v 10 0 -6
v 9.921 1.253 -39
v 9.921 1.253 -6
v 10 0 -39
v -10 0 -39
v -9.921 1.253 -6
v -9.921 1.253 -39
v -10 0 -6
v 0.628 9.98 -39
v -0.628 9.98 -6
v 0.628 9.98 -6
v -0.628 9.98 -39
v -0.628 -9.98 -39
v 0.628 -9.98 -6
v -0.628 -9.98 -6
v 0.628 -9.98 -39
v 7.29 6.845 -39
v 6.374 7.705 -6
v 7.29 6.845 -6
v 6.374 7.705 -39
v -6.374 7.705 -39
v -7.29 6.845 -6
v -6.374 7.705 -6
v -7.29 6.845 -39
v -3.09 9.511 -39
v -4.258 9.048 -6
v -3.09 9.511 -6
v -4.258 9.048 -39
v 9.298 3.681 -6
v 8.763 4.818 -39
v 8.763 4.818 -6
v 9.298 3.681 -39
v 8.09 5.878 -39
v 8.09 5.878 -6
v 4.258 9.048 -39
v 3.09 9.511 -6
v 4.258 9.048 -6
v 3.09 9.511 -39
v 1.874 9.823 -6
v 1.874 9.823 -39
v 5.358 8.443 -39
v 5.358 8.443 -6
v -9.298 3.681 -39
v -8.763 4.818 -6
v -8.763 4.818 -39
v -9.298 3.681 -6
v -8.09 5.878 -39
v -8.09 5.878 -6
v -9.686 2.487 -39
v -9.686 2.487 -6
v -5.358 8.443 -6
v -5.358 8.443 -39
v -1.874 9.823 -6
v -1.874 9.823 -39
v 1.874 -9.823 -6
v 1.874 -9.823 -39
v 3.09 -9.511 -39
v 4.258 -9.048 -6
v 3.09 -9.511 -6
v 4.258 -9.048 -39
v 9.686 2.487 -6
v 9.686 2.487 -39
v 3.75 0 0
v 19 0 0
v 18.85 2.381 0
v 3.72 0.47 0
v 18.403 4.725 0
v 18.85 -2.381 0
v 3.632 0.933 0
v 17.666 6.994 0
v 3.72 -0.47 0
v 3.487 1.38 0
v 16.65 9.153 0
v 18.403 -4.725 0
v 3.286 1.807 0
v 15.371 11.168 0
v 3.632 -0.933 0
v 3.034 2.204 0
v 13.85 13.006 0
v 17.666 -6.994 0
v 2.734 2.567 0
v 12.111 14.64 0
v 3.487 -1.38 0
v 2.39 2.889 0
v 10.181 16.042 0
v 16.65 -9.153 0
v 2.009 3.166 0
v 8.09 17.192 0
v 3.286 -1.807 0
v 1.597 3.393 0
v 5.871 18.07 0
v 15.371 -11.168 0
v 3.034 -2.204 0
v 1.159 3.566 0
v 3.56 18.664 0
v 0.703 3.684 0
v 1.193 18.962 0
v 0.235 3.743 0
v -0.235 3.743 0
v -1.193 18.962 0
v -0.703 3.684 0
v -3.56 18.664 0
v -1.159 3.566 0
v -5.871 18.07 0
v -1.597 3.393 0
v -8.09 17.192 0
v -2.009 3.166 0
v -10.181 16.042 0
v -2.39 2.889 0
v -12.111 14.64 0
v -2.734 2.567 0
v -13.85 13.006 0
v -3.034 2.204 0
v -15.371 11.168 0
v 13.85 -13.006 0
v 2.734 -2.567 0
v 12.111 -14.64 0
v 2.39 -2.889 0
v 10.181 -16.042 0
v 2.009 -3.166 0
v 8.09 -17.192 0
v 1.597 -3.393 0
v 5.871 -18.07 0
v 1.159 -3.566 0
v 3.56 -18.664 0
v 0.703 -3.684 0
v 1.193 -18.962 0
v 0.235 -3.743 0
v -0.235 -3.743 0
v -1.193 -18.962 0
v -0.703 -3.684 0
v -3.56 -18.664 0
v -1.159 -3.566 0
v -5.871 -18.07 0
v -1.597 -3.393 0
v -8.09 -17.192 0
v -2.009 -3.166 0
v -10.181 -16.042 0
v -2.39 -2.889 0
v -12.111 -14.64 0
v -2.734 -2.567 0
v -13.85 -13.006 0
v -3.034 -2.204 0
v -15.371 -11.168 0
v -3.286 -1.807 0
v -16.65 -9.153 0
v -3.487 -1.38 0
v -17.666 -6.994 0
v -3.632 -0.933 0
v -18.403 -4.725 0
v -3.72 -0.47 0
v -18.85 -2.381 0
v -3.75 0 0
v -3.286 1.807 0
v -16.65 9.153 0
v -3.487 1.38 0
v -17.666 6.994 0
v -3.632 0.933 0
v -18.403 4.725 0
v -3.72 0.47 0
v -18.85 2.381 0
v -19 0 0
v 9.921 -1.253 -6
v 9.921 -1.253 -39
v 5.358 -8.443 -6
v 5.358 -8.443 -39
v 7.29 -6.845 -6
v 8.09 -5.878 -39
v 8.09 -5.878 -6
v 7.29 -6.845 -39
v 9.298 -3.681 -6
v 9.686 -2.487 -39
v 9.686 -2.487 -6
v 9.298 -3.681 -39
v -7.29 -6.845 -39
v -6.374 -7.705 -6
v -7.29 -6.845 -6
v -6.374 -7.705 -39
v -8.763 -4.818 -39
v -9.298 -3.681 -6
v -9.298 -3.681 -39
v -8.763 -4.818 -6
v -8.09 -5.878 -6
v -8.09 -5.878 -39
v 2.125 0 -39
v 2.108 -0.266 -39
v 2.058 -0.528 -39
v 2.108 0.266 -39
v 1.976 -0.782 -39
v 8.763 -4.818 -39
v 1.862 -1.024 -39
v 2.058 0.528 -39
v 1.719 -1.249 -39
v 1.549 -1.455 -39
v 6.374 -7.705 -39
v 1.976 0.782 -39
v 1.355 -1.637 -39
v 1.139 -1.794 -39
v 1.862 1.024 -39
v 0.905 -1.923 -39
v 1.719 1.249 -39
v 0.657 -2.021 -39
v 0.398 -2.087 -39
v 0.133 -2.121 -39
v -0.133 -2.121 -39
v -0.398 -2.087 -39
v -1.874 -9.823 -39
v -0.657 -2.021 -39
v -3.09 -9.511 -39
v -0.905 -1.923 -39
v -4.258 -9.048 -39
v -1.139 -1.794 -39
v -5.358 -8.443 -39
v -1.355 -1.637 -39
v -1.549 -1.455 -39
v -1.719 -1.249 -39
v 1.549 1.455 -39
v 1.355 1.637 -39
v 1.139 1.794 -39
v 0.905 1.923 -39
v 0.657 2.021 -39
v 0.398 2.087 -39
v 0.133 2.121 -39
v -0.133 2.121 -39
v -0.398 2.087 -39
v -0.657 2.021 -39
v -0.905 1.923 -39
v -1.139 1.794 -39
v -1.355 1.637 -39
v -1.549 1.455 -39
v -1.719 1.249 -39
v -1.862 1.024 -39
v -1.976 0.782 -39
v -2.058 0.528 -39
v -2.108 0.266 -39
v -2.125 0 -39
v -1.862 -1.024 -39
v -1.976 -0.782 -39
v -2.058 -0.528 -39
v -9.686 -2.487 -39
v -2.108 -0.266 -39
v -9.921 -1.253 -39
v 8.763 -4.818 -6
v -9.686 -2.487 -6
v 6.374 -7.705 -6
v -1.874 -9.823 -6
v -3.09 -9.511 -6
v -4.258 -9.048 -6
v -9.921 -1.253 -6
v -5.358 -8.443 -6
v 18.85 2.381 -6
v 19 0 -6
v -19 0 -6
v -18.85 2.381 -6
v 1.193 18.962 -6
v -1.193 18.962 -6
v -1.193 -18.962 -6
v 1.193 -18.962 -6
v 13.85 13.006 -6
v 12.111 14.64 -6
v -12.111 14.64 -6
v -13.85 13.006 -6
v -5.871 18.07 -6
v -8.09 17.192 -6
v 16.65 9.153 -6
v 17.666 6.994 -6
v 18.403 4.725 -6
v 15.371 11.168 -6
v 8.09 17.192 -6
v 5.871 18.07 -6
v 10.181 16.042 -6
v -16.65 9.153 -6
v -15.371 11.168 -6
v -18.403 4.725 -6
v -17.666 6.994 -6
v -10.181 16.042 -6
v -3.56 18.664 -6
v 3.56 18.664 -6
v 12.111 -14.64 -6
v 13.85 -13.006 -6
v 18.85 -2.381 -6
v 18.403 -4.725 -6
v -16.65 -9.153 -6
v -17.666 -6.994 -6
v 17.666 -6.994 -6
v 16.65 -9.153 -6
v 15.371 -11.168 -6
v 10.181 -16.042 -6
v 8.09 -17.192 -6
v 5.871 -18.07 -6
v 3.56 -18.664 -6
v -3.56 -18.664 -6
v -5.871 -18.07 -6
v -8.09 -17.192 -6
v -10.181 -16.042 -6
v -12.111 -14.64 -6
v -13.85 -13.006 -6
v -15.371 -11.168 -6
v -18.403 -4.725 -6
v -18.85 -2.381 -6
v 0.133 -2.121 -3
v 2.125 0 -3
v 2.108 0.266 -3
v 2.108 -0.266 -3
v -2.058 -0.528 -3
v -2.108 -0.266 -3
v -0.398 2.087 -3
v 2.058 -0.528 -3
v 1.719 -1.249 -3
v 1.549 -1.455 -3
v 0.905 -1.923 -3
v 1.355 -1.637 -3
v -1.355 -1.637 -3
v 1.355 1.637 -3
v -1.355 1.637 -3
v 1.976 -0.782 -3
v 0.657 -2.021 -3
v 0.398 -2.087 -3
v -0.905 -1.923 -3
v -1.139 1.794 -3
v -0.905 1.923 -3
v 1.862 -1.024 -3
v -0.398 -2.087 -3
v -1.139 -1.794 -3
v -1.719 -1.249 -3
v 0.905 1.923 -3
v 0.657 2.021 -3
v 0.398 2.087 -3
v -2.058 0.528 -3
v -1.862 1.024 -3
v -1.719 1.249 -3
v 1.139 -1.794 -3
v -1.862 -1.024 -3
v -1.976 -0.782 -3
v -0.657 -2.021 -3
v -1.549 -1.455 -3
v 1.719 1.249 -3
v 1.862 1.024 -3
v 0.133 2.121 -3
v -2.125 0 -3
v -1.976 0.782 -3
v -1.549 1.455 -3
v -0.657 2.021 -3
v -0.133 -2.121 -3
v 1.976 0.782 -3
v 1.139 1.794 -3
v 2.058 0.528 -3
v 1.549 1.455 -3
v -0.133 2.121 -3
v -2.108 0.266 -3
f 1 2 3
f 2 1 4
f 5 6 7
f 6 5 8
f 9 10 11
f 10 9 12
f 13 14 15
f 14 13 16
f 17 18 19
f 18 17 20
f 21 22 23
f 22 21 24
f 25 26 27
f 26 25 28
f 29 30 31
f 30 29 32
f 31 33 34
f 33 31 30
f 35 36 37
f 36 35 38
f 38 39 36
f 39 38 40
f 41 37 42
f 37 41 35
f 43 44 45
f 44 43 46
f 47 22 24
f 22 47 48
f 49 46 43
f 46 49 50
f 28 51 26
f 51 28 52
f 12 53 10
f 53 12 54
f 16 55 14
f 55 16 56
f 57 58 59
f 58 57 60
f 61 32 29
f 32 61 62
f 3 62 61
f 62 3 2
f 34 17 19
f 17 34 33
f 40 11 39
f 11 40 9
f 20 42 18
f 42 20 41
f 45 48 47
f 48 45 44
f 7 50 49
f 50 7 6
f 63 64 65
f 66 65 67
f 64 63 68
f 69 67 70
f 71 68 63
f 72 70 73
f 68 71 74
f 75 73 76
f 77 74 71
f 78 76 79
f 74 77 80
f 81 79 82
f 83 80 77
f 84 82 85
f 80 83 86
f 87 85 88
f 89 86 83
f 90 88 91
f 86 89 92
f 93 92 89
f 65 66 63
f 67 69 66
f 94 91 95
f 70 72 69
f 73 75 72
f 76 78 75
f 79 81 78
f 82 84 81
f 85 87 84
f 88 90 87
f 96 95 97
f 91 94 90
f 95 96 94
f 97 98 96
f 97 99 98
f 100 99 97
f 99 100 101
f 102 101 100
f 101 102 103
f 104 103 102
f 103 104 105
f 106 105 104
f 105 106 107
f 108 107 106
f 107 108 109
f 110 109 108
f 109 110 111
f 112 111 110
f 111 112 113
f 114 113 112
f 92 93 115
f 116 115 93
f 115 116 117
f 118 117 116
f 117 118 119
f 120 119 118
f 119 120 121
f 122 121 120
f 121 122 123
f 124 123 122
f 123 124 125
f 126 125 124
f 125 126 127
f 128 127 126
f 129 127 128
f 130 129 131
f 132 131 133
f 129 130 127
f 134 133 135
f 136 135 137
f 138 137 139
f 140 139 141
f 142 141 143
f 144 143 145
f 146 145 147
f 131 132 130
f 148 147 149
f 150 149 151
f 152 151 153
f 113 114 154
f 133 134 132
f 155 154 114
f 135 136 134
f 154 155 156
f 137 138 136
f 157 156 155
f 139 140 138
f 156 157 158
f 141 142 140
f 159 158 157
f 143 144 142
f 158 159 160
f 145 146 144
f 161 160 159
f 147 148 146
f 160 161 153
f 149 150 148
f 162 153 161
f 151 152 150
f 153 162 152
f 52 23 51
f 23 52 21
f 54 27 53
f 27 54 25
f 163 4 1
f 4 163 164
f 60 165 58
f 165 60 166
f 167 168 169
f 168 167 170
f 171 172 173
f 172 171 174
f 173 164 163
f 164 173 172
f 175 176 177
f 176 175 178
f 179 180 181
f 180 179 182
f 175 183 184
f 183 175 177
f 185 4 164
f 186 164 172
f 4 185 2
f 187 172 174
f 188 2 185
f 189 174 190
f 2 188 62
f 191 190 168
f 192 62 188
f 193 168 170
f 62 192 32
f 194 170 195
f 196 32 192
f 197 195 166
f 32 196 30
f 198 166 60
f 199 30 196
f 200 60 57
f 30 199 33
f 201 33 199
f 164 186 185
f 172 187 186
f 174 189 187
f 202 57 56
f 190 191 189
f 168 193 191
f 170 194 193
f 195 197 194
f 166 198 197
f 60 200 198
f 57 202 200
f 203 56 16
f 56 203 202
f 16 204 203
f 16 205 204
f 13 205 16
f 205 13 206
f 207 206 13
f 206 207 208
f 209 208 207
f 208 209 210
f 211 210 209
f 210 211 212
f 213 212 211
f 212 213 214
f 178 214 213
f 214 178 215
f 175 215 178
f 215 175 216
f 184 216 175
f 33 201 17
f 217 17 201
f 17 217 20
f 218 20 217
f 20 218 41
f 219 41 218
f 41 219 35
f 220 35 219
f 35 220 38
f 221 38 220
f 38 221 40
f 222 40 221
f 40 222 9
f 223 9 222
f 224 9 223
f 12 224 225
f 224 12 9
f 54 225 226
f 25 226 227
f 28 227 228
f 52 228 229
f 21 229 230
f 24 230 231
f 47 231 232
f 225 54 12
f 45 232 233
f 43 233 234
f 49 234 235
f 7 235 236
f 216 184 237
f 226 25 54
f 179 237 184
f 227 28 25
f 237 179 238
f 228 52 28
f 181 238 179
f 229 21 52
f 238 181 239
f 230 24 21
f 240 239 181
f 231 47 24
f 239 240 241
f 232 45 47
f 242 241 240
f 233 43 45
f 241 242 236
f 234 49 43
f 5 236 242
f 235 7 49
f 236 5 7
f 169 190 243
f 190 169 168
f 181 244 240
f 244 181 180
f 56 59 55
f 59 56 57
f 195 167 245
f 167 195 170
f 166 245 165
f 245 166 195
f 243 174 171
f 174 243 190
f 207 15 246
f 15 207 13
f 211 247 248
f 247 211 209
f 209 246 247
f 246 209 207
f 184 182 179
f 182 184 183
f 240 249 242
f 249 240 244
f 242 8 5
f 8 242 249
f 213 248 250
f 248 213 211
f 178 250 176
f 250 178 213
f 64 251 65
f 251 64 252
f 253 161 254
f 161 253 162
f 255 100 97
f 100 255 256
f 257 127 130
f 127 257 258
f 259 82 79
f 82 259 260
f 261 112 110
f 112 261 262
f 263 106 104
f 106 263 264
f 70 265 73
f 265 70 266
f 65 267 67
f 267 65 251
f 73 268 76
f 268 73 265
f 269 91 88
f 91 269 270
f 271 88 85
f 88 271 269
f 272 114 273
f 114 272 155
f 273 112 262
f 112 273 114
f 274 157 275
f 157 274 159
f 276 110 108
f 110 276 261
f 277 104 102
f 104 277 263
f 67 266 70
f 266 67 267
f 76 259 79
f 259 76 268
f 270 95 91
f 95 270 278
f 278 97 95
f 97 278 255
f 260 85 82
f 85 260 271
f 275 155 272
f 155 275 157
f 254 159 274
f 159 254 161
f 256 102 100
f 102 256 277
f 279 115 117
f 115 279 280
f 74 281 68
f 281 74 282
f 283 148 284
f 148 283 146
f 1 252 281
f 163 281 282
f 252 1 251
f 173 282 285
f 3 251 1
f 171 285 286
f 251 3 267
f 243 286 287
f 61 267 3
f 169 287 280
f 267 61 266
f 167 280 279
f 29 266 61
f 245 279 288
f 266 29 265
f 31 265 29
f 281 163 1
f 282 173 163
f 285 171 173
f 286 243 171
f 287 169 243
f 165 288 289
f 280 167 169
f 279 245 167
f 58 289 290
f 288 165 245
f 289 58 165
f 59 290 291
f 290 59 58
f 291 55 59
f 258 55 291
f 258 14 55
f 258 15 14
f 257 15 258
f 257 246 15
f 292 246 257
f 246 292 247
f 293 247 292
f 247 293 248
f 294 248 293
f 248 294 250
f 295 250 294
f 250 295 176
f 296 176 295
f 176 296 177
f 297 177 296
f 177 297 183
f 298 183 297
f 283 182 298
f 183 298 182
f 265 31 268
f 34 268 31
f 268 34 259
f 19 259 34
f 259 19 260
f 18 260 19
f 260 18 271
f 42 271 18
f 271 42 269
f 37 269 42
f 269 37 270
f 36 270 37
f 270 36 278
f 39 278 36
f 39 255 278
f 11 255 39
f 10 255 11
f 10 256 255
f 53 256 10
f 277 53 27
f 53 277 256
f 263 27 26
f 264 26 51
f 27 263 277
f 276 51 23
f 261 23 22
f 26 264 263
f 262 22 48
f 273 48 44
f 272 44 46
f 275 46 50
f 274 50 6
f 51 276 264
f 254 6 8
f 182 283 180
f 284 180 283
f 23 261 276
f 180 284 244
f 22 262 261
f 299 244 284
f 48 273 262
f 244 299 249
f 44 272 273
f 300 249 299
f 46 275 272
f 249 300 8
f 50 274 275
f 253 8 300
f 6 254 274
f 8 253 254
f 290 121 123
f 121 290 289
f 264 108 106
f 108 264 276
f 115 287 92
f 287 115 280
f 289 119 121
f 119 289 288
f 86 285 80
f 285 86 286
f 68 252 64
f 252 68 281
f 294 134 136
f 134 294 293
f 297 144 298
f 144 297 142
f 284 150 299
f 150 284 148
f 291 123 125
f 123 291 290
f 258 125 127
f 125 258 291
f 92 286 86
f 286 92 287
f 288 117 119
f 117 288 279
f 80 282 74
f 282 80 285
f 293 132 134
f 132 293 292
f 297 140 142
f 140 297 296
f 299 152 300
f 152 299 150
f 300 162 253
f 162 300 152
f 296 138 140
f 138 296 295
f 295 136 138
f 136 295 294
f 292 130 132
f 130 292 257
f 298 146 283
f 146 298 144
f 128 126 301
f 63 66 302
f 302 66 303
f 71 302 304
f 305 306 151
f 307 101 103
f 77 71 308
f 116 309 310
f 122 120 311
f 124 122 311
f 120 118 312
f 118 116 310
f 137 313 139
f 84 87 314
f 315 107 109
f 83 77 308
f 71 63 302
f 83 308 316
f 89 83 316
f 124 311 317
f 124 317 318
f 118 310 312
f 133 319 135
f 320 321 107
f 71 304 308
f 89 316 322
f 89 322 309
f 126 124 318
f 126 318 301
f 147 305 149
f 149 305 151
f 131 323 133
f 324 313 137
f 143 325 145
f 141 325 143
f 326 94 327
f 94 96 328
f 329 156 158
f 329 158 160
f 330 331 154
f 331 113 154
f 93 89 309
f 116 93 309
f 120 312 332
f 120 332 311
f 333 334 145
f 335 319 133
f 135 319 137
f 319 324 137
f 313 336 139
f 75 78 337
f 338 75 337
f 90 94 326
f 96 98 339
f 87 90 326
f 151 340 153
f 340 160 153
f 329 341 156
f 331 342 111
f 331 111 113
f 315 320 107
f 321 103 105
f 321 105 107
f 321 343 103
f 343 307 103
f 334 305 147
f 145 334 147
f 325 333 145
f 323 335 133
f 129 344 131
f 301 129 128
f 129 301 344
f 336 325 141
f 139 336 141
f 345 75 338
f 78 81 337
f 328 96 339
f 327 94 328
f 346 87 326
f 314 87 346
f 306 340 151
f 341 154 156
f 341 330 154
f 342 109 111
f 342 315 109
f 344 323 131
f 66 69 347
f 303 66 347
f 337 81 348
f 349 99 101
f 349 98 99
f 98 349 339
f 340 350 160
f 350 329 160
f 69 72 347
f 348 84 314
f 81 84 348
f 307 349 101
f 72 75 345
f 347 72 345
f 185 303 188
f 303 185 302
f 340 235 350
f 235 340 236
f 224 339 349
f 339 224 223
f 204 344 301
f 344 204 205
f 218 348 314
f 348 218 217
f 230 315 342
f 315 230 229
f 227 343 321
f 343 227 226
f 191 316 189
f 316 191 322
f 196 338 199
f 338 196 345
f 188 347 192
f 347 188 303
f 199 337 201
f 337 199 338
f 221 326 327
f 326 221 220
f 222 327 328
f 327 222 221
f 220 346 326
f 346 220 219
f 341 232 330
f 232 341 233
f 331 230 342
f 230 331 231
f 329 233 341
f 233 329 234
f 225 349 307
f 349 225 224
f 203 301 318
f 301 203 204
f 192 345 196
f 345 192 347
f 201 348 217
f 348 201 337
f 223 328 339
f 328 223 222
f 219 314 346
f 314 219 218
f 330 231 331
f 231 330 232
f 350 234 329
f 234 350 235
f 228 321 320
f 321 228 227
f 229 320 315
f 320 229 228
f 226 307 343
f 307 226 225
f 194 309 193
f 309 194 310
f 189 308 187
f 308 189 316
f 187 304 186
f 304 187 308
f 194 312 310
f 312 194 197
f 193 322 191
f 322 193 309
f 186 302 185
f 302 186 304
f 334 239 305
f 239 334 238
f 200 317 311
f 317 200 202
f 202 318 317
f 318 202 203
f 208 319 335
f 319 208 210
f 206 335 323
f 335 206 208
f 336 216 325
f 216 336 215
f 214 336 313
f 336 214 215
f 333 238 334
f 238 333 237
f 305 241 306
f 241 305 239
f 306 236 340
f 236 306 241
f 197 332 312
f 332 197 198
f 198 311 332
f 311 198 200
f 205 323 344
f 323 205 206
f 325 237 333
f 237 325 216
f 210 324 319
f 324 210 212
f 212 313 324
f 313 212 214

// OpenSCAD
$fn = 50;


difference() {
	union() {
		translate(v = [0, 0, -39.0000000000]) {
			cylinder(h = 39, r = 10.0000000000);
		}
		translate(v = [0, 0, -6.0000000000]) {
			cylinder(h = 6, r = 19.0000000000);
		}
	}
	union() {
		translate(v = [0, 0, 0]) {
			rotate(a = [0, 0, 0]) {
				difference() {
					union() {
						#translate(v = [0, 0, -39.0000000000]) {
							cylinder(h = 39, r = 2.0000000000);
						}
						#translate(v = [0, 0, -3]) {
							cylinder(h = 3, r = 10.0000000000, r1 = 2.1250000000, r2 = 3.7500000000);
						}
						#translate(v = [0, 0, -39.0000000000]) {
							cylinder(h = 39, r = 2.1250000000);
						}
						#translate(v = [0, 0, -39.0000000000]) {
							cylinder(h = 39, r = 2.0000000000);
						}
					}
					union();
				}
			}
		}
	}
}
